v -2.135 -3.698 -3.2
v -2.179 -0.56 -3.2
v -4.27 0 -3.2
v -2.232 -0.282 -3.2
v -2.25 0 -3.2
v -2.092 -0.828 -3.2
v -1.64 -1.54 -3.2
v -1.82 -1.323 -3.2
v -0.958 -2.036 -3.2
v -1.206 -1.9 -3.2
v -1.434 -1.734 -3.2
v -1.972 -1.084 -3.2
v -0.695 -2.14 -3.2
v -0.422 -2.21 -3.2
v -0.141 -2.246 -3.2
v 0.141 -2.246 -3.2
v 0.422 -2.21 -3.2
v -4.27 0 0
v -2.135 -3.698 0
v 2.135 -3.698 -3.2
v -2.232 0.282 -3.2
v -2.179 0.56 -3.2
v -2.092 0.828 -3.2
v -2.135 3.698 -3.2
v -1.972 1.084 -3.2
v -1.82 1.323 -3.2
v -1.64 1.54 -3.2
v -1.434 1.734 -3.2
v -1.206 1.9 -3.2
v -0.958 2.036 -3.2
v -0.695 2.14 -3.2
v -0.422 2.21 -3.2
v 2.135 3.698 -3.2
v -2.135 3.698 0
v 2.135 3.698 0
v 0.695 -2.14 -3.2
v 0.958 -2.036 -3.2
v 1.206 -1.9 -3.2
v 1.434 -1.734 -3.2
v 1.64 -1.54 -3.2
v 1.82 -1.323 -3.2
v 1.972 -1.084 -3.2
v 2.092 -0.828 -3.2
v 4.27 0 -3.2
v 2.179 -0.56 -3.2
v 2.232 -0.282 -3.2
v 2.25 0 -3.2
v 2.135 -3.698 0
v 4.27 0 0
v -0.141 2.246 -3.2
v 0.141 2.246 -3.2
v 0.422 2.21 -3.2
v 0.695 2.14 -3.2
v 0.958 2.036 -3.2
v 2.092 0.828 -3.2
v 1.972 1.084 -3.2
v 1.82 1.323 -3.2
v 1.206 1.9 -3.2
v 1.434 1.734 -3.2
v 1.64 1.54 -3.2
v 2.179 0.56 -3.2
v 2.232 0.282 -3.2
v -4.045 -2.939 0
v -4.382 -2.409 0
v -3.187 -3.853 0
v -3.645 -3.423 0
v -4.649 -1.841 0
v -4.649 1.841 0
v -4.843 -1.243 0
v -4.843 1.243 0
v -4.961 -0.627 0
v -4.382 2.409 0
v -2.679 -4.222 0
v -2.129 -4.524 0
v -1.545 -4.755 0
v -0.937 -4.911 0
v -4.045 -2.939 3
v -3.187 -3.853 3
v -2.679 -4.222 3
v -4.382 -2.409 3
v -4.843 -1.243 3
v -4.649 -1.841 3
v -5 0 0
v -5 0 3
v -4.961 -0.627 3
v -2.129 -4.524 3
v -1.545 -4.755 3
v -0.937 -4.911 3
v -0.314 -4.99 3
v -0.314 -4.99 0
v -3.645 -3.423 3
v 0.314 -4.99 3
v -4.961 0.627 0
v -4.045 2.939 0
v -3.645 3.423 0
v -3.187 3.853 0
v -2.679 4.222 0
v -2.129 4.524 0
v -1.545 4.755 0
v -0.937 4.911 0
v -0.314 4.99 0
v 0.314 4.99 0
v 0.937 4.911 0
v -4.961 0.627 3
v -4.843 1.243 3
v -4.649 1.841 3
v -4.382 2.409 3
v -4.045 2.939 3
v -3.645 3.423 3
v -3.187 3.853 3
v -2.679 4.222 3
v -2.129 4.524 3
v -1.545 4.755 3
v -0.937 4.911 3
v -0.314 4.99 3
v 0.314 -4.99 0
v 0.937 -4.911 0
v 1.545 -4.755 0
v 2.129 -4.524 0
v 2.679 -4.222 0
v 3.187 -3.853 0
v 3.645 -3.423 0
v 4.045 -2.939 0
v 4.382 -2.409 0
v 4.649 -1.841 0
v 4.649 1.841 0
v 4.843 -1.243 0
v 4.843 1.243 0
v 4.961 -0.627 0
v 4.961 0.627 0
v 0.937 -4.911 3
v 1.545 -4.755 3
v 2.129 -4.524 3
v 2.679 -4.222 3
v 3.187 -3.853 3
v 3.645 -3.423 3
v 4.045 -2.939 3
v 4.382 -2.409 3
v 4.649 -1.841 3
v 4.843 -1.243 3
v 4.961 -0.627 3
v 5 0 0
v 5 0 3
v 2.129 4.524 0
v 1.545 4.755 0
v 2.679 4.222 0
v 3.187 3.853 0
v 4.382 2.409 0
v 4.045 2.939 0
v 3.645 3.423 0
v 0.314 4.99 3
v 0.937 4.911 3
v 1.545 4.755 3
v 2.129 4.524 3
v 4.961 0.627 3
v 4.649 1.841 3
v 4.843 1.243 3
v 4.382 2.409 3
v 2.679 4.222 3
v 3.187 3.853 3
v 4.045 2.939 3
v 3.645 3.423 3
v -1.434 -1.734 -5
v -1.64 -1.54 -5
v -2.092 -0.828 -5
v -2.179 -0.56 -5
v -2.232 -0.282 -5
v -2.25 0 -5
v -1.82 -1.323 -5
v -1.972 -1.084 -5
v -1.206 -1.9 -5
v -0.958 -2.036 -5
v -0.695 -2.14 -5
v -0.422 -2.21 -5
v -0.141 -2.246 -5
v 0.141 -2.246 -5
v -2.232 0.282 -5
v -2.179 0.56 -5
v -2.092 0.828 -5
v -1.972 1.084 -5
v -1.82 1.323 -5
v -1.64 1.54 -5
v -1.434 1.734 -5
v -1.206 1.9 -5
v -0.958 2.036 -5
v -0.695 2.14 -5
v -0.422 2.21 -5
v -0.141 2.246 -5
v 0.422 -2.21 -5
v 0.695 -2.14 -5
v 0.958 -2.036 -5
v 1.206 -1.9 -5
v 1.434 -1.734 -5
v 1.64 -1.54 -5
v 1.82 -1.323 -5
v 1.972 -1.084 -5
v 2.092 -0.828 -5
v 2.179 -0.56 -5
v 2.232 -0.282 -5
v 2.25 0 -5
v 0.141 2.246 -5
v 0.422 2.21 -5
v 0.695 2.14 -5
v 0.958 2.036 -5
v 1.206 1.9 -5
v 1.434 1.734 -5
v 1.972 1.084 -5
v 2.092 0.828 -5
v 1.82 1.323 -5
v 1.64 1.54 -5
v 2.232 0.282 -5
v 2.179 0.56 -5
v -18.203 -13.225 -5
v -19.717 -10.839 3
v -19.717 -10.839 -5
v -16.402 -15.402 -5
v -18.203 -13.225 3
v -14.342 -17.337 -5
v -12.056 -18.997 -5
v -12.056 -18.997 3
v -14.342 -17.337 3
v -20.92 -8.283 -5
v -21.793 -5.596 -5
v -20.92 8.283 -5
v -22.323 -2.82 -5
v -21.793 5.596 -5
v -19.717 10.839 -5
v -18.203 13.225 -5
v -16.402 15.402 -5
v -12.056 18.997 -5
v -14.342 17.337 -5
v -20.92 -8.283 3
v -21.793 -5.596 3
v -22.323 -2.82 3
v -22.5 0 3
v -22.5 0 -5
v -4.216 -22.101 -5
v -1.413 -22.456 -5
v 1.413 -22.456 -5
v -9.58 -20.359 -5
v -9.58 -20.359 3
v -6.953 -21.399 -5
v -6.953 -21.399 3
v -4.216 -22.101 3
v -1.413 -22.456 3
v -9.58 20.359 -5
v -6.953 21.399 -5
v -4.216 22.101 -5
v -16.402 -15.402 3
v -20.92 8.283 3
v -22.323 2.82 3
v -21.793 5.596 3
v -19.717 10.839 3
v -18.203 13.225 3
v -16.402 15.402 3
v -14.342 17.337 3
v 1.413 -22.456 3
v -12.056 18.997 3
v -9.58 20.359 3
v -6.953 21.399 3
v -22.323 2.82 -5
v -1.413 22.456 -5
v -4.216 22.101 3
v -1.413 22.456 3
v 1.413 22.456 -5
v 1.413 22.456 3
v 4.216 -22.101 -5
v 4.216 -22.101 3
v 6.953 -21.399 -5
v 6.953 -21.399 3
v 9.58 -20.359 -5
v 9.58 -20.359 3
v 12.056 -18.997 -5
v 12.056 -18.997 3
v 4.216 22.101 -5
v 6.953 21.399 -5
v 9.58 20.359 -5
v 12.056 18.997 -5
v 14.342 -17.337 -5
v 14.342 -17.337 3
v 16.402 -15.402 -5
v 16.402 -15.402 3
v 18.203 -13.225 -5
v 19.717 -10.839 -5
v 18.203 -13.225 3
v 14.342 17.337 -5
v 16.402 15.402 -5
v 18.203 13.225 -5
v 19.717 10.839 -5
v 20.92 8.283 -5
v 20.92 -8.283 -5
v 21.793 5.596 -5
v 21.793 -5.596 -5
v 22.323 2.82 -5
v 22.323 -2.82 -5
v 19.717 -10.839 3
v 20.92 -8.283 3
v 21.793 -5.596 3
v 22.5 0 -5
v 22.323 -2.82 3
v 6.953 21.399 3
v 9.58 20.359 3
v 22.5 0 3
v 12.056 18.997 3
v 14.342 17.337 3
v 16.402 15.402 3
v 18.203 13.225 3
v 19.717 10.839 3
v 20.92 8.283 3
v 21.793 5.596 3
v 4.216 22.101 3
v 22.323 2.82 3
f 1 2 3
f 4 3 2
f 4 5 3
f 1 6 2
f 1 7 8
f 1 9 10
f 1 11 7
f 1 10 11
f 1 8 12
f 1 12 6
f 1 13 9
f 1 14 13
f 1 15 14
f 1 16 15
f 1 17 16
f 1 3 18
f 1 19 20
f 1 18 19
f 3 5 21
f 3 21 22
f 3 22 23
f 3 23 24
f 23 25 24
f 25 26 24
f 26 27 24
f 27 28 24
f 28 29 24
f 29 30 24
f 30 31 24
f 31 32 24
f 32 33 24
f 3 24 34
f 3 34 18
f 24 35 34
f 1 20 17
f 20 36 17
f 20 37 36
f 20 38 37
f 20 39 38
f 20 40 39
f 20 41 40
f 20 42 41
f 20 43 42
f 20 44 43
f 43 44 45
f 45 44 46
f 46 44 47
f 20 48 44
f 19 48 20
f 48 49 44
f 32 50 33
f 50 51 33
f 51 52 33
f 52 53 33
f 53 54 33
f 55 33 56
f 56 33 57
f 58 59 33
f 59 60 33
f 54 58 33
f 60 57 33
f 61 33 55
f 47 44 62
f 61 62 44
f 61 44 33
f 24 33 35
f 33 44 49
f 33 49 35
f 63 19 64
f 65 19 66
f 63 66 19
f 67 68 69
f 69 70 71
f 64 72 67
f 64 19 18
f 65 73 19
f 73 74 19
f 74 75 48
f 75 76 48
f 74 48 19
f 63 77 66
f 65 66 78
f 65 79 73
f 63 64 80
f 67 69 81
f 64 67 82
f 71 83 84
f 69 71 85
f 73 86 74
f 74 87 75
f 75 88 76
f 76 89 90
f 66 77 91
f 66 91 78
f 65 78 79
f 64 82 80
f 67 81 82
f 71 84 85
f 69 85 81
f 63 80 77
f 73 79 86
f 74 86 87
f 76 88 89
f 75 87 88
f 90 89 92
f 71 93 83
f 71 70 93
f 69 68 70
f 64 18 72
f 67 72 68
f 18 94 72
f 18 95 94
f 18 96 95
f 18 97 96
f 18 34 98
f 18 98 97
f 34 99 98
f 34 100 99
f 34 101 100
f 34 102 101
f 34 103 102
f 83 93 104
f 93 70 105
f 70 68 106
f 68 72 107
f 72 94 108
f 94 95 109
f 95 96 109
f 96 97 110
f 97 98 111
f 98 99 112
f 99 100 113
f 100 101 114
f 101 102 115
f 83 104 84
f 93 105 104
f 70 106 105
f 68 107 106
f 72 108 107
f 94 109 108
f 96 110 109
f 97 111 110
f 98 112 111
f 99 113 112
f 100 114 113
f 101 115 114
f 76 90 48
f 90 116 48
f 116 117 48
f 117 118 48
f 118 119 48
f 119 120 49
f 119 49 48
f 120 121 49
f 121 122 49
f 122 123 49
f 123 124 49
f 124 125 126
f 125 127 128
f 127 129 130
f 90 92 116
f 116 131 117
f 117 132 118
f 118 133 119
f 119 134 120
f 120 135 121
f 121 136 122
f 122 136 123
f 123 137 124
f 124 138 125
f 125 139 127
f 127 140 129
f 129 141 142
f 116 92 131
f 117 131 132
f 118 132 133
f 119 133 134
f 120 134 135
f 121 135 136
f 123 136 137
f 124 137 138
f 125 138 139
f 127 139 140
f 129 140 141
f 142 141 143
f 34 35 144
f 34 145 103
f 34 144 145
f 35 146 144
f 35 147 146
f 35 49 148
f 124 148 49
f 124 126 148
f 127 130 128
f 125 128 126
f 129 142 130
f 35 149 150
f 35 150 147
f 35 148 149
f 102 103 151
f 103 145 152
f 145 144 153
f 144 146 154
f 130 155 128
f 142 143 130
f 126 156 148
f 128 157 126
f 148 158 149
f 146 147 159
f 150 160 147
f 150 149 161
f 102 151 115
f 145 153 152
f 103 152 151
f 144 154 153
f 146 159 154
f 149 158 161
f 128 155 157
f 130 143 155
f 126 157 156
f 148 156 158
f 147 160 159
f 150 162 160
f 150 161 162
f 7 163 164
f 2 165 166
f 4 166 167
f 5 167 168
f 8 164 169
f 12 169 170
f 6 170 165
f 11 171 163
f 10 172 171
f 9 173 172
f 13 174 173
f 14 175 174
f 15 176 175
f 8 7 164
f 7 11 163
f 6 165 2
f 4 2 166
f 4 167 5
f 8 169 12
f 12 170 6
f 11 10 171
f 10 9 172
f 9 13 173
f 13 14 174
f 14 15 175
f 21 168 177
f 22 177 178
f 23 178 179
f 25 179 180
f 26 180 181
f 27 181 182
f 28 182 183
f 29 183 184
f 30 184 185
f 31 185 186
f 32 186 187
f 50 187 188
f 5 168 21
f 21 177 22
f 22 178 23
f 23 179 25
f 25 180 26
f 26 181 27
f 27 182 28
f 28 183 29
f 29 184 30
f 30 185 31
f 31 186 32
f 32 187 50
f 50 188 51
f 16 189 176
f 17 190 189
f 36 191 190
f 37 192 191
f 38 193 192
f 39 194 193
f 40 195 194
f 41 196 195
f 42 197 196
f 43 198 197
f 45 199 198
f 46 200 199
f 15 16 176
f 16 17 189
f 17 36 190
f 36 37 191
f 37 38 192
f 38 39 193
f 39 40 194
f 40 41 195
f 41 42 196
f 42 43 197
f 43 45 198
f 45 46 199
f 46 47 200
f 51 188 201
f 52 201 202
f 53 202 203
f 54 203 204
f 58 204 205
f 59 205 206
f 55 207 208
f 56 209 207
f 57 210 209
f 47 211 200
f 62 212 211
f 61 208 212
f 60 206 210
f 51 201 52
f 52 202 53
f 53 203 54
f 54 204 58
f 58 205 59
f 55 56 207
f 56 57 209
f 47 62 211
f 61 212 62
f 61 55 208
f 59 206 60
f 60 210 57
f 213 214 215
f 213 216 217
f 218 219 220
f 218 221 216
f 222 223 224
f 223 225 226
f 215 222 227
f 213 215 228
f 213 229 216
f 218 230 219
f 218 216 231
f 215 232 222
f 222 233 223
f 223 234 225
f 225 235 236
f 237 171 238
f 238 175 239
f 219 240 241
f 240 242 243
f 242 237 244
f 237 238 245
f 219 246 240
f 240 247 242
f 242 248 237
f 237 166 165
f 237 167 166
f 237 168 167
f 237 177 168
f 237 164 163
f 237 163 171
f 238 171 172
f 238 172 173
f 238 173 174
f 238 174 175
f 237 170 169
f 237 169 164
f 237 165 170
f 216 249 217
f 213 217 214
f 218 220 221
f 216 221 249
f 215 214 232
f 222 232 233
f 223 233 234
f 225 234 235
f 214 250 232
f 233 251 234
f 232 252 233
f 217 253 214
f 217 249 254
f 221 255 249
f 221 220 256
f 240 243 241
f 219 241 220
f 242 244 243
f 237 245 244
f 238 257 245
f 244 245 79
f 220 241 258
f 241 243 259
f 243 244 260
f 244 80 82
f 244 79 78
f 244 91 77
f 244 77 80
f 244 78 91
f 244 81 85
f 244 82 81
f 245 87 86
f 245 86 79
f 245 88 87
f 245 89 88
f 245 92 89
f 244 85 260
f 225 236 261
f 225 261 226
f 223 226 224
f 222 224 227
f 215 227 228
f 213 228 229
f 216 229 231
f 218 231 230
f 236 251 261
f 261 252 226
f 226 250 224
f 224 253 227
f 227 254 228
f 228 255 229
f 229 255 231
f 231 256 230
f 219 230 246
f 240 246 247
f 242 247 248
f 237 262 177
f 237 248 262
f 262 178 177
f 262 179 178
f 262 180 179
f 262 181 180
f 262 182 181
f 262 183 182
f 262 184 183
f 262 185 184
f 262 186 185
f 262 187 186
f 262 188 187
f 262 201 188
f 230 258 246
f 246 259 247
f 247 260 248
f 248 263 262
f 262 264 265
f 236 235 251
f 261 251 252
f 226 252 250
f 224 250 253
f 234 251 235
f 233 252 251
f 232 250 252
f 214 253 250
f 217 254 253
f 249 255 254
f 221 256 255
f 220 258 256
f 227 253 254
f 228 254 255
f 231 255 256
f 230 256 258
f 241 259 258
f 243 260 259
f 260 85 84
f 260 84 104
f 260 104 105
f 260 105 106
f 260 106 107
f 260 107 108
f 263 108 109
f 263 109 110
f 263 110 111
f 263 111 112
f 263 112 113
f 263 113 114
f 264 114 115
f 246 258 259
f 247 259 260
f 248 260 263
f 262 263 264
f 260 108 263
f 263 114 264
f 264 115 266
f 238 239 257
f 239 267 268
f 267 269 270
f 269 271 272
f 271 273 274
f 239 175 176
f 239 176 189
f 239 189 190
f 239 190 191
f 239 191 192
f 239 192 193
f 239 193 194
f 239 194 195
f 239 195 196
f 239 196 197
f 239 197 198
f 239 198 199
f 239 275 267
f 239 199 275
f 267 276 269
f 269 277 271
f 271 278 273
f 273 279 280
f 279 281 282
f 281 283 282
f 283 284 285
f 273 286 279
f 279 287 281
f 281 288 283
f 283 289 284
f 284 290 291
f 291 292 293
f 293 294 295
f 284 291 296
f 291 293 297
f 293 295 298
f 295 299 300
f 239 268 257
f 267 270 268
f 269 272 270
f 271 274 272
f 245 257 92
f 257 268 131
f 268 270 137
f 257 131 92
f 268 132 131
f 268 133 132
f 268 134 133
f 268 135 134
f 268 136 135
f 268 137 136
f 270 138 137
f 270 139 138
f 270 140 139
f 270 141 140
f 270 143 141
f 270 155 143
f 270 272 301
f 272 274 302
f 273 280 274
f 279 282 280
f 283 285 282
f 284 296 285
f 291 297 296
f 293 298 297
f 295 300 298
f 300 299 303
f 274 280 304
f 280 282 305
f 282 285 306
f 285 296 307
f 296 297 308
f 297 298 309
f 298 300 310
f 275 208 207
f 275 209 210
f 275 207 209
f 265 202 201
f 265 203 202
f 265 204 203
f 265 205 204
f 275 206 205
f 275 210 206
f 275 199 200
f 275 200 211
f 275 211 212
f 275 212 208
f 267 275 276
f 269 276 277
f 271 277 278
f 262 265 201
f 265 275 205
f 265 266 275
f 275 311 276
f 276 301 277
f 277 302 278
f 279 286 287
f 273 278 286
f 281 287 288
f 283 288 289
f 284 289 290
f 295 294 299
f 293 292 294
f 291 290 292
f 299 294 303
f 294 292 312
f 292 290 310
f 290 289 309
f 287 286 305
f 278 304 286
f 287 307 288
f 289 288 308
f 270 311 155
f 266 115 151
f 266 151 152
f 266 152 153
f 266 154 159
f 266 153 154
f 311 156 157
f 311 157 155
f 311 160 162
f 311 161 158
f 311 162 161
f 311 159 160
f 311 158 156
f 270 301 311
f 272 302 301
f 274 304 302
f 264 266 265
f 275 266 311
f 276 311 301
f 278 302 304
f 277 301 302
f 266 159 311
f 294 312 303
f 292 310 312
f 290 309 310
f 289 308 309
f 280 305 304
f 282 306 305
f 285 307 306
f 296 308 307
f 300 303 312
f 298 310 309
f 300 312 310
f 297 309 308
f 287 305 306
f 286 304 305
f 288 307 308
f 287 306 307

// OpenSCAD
$fn = 50;


difference() {
	union() {
		translate(v = [0, 0, -5.0000000000]) {
			cylinder(h = 8.0000000000, r = 22.5000000000);
		}
	}
	union() {
		translate(v = [0, 0, 0]) {
			rotate(a = [0, 0, 0]) {
				difference() {
					union() {
						translate(v = [0, 0, -3.2000000000]) {
							linear_extrude(height = 3.2000000000) {
								polygon(points = [[4.2698000000, 0.0000000000], [2.1349000000, 3.6977552691], [-2.1349000000, 3.6977552691], [-4.2698000000, 0.0000000000], [-2.1349000000, -3.6977552691], [2.1349000000, -3.6977552691]]);
							}
						}
					}
					union();
				}
			}
		}
		#cylinder(h = 3, r = 5.0000000000);
		#translate(v = [0, 0, -100.0000000000]) {
			cylinder(h = 200, r = 2.2500000000);
		}
	}
}
